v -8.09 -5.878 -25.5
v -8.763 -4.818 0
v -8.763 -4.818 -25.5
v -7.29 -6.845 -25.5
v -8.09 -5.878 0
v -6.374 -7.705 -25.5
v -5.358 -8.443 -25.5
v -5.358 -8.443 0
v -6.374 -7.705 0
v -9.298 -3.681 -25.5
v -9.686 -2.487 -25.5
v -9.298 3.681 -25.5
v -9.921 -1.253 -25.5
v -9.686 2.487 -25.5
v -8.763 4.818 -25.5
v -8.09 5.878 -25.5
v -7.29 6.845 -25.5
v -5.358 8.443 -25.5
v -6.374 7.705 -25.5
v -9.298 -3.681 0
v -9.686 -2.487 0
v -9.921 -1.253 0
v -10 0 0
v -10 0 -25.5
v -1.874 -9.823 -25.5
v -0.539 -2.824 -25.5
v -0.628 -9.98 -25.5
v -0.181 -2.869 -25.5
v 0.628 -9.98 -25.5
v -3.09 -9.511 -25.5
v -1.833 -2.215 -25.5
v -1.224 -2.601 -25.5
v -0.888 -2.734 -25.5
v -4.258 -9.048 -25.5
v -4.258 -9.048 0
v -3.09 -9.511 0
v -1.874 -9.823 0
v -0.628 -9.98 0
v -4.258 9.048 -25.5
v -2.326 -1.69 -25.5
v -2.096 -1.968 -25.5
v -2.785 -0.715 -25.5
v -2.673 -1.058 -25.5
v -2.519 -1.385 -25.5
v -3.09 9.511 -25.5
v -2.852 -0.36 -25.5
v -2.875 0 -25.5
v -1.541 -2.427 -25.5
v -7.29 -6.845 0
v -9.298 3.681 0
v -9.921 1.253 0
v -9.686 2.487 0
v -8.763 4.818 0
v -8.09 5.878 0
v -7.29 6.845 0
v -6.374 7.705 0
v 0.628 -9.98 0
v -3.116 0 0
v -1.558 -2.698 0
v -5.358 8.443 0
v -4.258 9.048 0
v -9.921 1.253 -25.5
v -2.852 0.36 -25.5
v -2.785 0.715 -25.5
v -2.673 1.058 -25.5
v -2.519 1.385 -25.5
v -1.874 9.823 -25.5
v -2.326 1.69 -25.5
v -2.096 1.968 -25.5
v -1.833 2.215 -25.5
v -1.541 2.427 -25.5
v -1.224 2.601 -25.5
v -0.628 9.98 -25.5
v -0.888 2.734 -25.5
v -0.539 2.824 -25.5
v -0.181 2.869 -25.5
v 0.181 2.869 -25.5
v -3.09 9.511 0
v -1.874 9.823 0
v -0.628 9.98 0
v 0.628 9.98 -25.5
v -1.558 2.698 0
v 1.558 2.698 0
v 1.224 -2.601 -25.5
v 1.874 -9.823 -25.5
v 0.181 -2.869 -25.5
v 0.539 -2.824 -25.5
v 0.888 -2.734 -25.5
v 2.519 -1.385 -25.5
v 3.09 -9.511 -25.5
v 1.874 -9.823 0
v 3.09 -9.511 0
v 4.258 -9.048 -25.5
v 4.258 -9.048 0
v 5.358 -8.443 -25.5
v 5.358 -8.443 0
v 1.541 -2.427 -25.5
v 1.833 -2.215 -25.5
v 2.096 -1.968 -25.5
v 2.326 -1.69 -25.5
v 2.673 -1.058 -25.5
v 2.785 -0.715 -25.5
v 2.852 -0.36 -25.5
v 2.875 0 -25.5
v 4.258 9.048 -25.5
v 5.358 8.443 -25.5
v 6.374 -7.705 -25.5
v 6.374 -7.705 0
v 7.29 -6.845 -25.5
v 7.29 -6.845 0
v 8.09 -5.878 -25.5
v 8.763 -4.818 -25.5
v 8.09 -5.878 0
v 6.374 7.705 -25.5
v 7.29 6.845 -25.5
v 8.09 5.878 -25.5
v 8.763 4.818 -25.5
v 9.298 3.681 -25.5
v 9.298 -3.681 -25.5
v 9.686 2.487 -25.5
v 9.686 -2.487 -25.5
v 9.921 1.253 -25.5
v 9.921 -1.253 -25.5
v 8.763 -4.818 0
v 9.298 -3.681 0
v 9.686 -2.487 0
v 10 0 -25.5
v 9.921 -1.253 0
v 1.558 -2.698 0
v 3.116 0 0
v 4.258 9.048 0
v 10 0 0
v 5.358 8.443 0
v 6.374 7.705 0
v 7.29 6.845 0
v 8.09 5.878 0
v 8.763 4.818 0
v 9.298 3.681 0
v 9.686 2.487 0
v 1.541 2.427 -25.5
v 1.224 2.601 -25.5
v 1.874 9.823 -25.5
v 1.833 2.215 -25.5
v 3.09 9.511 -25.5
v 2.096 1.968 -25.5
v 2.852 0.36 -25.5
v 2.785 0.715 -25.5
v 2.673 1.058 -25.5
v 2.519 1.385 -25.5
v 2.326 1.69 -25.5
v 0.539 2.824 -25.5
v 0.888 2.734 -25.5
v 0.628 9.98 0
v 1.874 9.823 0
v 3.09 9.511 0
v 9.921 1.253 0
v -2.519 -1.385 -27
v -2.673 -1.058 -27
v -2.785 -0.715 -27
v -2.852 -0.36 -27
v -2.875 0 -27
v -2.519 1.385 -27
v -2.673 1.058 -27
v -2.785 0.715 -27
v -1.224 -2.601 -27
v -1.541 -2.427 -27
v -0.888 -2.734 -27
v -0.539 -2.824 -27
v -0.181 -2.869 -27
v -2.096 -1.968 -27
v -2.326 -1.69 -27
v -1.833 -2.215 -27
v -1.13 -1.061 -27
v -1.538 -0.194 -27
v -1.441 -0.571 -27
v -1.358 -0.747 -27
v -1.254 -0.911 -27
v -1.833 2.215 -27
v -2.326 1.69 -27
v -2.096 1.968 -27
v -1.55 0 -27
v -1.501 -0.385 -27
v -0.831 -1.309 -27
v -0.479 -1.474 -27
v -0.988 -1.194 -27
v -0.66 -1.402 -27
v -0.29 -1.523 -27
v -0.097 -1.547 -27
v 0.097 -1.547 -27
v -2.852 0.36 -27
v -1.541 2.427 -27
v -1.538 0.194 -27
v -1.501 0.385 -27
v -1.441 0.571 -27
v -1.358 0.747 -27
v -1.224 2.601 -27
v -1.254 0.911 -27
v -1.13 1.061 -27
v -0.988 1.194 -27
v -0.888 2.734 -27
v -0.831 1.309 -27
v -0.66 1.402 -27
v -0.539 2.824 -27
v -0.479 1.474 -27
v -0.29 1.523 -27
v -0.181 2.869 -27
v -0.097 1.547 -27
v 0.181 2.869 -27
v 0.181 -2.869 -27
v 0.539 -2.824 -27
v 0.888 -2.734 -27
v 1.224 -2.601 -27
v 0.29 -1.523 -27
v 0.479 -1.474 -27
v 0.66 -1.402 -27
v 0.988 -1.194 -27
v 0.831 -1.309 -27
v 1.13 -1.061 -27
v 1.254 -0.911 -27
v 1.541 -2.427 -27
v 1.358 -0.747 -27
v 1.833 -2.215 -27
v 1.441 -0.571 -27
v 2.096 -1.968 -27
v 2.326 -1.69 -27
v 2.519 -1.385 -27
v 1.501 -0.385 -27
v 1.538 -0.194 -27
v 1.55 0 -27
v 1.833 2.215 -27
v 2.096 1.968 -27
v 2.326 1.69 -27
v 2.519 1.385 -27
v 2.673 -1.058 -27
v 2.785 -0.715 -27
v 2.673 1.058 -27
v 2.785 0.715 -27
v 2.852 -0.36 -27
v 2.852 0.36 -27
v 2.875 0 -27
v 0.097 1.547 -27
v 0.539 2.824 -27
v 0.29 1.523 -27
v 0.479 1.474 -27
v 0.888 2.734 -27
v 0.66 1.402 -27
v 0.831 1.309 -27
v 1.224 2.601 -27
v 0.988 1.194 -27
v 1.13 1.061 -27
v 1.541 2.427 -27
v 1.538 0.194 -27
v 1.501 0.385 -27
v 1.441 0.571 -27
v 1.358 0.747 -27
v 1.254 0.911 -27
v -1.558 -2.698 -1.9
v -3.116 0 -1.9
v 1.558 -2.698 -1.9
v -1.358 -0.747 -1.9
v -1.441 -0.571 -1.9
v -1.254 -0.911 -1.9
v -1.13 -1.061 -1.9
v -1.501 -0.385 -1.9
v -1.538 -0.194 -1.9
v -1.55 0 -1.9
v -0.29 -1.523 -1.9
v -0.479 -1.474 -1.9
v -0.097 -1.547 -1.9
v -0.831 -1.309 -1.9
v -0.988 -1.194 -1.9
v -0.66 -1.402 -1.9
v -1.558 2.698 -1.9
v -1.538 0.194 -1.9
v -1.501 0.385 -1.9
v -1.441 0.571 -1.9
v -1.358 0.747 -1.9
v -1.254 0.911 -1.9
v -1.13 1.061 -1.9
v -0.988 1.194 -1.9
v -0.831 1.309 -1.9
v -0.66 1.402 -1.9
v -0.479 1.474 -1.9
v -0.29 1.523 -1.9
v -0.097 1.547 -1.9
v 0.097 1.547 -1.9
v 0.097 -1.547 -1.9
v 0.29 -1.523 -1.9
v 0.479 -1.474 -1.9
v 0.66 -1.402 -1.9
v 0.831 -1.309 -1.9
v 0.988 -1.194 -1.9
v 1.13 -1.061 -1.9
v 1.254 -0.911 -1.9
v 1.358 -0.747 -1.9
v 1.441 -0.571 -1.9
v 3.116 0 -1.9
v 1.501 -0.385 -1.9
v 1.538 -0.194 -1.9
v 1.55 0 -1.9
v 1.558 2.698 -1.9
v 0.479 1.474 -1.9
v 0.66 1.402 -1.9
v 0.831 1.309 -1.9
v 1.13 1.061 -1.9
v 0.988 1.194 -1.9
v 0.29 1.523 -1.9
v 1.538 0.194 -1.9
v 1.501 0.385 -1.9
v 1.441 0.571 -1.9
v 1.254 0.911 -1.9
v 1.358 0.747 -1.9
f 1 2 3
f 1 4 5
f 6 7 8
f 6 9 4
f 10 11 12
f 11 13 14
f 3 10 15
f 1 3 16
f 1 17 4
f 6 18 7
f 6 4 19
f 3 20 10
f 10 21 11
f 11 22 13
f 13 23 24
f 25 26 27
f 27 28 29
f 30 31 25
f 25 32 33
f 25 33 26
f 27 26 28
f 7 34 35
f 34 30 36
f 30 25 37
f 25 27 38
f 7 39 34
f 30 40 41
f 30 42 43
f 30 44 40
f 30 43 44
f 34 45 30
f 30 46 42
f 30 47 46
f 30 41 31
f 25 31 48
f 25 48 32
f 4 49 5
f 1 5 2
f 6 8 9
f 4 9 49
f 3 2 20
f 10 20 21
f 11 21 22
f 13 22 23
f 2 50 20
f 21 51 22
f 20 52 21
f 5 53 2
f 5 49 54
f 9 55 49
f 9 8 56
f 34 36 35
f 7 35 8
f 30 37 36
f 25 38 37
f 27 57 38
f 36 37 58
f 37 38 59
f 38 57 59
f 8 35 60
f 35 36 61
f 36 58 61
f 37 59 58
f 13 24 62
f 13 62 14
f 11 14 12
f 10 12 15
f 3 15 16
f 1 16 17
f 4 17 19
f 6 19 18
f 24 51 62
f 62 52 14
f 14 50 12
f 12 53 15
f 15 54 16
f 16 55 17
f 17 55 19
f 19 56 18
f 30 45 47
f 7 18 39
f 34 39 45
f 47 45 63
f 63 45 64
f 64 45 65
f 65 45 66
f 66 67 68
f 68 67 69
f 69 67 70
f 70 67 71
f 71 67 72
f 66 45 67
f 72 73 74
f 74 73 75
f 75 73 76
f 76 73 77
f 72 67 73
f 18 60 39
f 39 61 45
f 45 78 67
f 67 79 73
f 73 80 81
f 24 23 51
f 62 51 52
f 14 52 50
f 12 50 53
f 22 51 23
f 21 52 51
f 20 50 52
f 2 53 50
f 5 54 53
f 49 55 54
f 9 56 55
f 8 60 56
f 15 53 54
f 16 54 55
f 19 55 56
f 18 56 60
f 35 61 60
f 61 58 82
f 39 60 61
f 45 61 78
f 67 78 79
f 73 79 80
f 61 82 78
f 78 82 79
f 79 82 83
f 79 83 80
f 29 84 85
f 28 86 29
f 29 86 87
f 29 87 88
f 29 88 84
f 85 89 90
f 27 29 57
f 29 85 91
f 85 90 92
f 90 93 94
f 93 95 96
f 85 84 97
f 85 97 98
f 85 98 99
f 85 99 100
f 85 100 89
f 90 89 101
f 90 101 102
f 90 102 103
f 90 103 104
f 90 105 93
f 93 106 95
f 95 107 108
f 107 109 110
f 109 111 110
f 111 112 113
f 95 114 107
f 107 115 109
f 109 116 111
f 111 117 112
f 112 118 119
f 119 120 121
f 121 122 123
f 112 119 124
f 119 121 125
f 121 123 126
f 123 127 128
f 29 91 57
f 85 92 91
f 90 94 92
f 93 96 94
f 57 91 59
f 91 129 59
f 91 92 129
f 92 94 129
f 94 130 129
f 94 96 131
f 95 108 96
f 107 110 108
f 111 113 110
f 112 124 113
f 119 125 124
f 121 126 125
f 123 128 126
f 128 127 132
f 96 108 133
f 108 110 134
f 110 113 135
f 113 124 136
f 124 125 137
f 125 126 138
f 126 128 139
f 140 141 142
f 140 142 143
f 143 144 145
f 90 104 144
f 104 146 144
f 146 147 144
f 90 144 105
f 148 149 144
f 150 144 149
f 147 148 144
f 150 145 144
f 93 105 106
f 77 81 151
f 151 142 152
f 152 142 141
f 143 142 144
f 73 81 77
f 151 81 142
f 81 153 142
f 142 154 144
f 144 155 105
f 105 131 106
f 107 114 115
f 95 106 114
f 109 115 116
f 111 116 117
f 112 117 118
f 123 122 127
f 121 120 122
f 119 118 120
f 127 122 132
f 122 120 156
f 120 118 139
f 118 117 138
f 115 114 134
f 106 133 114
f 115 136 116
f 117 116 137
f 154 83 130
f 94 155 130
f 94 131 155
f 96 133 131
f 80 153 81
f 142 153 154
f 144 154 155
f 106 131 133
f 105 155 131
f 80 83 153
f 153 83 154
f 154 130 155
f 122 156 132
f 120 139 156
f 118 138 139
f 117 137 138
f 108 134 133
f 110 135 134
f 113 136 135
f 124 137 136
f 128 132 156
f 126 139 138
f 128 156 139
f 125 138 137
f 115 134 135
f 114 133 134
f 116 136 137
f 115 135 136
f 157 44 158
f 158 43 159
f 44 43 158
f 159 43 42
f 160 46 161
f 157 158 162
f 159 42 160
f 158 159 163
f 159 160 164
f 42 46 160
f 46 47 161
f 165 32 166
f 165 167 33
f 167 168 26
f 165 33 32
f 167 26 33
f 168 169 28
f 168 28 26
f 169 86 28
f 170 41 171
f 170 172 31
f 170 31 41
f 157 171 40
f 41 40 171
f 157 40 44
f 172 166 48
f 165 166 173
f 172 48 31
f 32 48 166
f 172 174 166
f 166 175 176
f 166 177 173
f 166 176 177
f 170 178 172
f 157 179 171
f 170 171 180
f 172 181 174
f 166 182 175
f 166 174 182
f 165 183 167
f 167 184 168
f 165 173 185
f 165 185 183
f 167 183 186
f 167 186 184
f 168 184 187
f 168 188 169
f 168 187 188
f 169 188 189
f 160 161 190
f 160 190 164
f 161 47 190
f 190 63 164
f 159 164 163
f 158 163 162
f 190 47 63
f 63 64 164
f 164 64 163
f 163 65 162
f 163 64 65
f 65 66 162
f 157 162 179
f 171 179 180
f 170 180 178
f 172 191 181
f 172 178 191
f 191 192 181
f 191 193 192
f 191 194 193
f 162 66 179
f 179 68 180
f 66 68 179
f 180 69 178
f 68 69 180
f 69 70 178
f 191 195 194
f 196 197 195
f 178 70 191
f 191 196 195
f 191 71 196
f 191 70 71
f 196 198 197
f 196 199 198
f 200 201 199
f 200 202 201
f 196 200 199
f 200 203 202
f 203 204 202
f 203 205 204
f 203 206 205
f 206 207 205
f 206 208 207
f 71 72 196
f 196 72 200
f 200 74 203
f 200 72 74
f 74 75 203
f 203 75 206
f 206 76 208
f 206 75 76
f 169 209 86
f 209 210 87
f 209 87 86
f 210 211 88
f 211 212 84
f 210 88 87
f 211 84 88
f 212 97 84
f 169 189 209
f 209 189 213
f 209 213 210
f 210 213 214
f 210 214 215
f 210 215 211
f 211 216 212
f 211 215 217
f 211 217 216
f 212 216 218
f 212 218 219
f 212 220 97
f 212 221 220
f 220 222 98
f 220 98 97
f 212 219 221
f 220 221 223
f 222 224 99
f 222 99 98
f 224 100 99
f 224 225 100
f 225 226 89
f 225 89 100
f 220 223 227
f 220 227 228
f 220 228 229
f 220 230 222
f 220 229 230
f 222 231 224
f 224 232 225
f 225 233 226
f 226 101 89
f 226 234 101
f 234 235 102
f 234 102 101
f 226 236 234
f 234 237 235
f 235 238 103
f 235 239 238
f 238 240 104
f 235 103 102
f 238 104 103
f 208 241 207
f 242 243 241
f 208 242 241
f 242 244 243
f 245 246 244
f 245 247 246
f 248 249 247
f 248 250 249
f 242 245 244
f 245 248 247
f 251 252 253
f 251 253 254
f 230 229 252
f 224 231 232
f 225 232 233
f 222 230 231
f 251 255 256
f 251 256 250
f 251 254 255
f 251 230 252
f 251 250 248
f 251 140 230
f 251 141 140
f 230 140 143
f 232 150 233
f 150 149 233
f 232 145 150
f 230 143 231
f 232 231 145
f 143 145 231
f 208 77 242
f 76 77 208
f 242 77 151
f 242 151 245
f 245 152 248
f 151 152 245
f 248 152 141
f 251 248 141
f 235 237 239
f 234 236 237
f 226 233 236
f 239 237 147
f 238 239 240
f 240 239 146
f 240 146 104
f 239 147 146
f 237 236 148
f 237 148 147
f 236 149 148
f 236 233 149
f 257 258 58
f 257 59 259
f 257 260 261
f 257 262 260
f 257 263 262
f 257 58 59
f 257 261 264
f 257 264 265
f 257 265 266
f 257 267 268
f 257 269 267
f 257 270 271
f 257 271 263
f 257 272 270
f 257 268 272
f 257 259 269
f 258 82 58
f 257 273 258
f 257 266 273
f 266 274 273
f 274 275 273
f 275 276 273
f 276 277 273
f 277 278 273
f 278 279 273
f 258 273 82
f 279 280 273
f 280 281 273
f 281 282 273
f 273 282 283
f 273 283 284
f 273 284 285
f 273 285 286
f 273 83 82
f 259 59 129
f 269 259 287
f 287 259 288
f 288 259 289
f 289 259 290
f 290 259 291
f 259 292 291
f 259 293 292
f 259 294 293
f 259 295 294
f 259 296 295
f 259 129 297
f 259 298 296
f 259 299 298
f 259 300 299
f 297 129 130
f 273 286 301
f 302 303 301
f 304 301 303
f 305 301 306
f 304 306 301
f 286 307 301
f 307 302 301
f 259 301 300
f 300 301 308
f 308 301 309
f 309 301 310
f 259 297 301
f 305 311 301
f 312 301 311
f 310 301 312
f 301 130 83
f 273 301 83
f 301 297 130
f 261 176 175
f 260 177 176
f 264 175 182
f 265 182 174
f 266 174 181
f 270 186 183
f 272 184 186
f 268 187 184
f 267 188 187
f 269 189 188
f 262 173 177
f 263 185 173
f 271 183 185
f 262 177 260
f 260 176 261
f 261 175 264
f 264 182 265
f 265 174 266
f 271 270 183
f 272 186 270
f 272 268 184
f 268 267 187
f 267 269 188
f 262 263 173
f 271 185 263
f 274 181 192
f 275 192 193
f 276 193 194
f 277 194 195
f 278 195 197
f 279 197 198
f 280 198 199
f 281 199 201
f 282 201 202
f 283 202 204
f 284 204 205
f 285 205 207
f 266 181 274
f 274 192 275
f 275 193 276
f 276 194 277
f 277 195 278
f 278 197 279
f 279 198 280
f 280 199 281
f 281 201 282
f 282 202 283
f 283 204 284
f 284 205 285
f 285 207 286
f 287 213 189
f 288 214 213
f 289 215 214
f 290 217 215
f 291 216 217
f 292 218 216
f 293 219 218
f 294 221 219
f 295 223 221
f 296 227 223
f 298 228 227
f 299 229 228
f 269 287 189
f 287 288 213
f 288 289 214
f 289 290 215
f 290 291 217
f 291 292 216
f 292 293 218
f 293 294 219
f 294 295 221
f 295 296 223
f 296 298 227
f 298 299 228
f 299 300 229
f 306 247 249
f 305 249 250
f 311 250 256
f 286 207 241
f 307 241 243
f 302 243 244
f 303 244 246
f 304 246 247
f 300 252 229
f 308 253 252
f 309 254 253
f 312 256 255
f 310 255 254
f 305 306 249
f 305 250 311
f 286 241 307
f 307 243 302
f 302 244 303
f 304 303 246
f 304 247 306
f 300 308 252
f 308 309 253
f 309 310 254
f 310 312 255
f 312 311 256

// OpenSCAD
$fn = 50;

difference() {
	union() {
		translate(v = [0, 0, -25.5]) {
			cylinder(h = 25.5, r = 10.0);
		}
		#translate(v = [0, 0, -27.0]) {
			cylinder(h = 27, r = 2.875);
		}
	}
	union() {
		translate(v = [0, 0, 0]) {
			rotate(a = [0, 0, 0]) {
				difference() {
					union() {
						translate(v = [0, 0, -1.9]) {
							linear_extrude(height = 1.9) {
								polygon(points = [[3.1158, 0.0], [1.5579000000000005, 2.698361953111554], [-1.5578999999999994, 2.6983619531115544], [-3.1158, 3.815754496783323e-16], [-1.5579000000000014, -2.6983619531115535], [1.557899999999998, -2.6983619531115552]]);
							}
						}
					}
					union();
				}
			}
		}
		#translate(v = [0, 0, -100.0]) {
			cylinder(h = 200, r = 1.55);
		}
	}
}
